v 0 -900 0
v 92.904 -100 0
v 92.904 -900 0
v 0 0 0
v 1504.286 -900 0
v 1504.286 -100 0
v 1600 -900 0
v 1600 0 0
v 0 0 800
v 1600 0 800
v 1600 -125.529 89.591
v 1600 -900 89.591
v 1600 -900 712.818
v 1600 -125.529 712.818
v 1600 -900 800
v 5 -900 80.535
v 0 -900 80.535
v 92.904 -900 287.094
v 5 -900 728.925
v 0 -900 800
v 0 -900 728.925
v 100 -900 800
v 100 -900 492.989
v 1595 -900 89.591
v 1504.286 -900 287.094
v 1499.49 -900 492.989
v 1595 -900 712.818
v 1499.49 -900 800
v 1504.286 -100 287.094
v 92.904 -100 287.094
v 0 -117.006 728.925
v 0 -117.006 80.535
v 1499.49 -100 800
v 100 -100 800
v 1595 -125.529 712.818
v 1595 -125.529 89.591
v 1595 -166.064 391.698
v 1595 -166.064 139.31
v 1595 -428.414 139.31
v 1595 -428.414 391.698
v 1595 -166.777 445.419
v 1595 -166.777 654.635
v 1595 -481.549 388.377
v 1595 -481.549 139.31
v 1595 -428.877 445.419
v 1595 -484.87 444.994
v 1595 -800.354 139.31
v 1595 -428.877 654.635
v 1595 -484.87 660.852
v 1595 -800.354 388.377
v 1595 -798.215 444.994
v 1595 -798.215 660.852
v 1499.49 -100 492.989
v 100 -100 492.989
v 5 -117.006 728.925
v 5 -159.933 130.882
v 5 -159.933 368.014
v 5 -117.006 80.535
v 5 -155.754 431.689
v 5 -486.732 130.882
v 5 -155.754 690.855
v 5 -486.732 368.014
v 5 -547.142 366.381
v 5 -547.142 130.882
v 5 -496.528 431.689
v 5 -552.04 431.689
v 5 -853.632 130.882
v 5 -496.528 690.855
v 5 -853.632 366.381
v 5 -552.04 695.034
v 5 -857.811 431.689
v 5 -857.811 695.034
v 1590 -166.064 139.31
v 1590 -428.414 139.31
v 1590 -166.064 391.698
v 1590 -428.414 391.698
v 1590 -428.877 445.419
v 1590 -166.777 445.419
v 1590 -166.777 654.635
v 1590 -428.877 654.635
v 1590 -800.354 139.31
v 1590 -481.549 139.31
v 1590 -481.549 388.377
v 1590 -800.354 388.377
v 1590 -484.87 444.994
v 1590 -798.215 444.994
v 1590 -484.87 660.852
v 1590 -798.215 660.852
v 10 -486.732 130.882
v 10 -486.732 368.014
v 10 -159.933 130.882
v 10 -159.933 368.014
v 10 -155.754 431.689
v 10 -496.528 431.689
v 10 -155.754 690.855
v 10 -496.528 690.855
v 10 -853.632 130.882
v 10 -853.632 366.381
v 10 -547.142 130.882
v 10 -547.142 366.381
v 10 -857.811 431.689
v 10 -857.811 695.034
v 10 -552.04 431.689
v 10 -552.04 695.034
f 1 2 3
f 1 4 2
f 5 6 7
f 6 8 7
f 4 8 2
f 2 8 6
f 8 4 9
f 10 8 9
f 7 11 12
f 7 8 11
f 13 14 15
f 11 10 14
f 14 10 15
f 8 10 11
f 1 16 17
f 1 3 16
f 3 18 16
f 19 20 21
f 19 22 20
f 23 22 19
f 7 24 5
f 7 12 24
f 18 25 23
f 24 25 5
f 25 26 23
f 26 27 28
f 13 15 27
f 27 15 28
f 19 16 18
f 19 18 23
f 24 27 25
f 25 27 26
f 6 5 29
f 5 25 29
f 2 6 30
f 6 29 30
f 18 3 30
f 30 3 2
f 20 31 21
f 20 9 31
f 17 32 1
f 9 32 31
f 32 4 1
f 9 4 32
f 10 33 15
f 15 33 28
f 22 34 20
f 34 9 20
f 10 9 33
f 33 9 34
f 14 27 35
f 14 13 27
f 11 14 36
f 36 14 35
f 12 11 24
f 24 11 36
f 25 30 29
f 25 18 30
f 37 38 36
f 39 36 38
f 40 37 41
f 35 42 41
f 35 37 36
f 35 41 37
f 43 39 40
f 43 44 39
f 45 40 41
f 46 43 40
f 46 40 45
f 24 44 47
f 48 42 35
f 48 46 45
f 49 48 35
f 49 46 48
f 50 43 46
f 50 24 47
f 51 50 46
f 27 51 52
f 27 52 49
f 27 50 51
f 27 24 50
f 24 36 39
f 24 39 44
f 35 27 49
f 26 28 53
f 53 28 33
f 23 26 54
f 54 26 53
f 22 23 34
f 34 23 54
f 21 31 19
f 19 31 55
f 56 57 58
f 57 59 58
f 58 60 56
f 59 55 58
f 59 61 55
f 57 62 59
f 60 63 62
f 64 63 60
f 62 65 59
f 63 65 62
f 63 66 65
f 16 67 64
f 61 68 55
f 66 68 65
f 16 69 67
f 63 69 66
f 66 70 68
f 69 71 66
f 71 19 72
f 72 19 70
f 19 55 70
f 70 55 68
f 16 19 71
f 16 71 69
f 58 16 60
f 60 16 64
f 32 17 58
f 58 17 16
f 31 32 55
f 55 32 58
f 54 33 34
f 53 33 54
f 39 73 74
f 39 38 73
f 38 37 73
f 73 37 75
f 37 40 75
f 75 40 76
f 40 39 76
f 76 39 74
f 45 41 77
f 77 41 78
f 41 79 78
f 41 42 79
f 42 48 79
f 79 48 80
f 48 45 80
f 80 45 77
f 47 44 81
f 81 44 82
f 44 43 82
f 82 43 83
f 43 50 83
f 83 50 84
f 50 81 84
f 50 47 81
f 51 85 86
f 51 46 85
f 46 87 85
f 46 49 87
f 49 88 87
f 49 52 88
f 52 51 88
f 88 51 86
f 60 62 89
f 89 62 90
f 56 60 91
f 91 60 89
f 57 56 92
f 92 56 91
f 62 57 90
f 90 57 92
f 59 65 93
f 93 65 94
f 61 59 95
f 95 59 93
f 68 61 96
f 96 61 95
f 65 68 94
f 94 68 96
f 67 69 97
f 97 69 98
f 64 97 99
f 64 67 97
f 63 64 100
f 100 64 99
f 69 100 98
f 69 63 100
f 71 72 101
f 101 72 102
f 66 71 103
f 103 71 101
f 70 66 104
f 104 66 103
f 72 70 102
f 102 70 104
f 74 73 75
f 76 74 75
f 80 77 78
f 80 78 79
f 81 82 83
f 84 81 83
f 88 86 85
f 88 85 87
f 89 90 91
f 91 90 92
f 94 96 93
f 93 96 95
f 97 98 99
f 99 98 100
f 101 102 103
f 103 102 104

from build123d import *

# Parameters (mm, degrees)
SKETCH_W        = 1600
SKETCH_H        = 800
PAD_DEPTH       = 900
SKETCH001_W     = 1399.489502
SKETCH001_H     = 357.799927
SKETCH001_W_2   = 1411.382736
SKETCH001_H_2   = 386.889557
POCKET_DEPTH    = 800
SKETCH002_W     = 648.389411
SKETCH002_H     = 831.100419
POCKET001_DEPTH = 5
SKETCH003_W     = 623.226656
SKETCH003_H     = 886.54245
POCKET002_DEPTH = 5
SKETCH004_W     = 249.06694
SKETCH004_H     = 318.805694
SKETCH004_W_2   = 215.858154
SKETCH004_H_2   = 313.345032
SKETCH004_W_3   = 252.387802
SKETCH004_H_3   = 262.350571
SKETCH004_W_4   = 209.216248
SKETCH004_H_4   = 262.099701
POCKET003_DEPTH = 5
SKETCH005_W     = 263.345154
SKETCH005_H     = 305.770508
SKETCH005_W_2   = 235.499115
SKETCH005_H_2   = 306.489624
SKETCH005_W_3   = 259.166199
SKETCH005_H_3   = 340.773849
SKETCH005_W_4   = 237.131774
SKETCH005_H_4   = 326.798797
POCKET004_DEPTH = 5


with BuildPart() as part:
    # Sketch → Pad (new body)
    with BuildSketch(Plane.XZ):
        with Locations((800, 400)):
            Rectangle(SKETCH_W, SKETCH_H)
    extrude(amount=PAD_DEPTH)

    # Sketch001 (on Face6 of Pad) → Pocket (cut)
    with BuildSketch(Plane.XZ.offset(900)):
        with Locations((799.744751, 671.889404)):
            Rectangle(SKETCH001_W, SKETCH001_H)
        with Locations((798.594947, 93.649276)):
            Rectangle(SKETCH001_W_2, SKETCH001_H_2)
    extrude(amount=-POCKET_DEPTH, mode=Mode.SUBTRACT)

    # Sketch002 (on Face8 of Pocket) → Pocket001 (cut)
    with BuildSketch(Plane(origin=(0, 0, 0), x_dir=(0, 0, -1), z_dir=(-1, 0, 0))):
        with Locations((-404.729881, 532.556495)):
            Rectangle(SKETCH002_W, SKETCH002_H)
    extrude(amount=-POCKET001_DEPTH, mode=Mode.SUBTRACT)

    # Sketch003 (on Face3 of Pocket001) → Pocket002 (cut)
    with BuildSketch(Plane(origin=(1600, 0, 0), x_dir=(0, 0, 1), z_dir=(1, 0, 0))):
        with Locations((401.204392, 568.800241)):
            Rectangle(SKETCH003_W, SKETCH003_H)
    extrude(amount=-POCKET002_DEPTH, mode=Mode.SUBTRACT)

    # Sketch004 (on Face14 of Pocket002) → Pocket003 (cut)
    with BuildSketch(Plane(origin=(1595, 0, 0), x_dir=(0, 0, 1), z_dir=(1, 0, 0))):
        with Locations((263.843483, 640.951462)):
            Rectangle(SKETCH004_W, SKETCH004_H)
        with Locations((552.92334, 641.542023)):
            Rectangle(SKETCH004_W_2, SKETCH004_H_2)
        with Locations((265.503914, 297.23899)):
            Rectangle(SKETCH004_W_3, SKETCH004_H_3)
        with Locations((550.027313, 297.826859)):
            Rectangle(SKETCH004_W_4, SKETCH004_H_4)
    extrude(amount=-POCKET003_DEPTH, mode=Mode.SUBTRACT)

    # Sketch005 (on Face19 of Pocket003) → Pocket004 (cut)
    with BuildSketch(Plane(origin=(5, 0, 0), x_dir=(0, 0, -1), z_dir=(-1, 0, 0))):
        with Locations((-563.361725, 704.925354)):
            Rectangle(SKETCH005_W, SKETCH005_H)
        with Locations((-248.631547, 700.386841)):
            Rectangle(SKETCH005_W_2, SKETCH005_H_2)
        with Locations((-561.272247, 326.141334)):
            Rectangle(SKETCH005_W_3, SKETCH005_H_3)
        with Locations((-249.447876, 323.332688)):
            Rectangle(SKETCH005_W_4, SKETCH005_H_4)
    extrude(amount=-POCKET004_DEPTH, mode=Mode.SUBTRACT)


solid = part.part
